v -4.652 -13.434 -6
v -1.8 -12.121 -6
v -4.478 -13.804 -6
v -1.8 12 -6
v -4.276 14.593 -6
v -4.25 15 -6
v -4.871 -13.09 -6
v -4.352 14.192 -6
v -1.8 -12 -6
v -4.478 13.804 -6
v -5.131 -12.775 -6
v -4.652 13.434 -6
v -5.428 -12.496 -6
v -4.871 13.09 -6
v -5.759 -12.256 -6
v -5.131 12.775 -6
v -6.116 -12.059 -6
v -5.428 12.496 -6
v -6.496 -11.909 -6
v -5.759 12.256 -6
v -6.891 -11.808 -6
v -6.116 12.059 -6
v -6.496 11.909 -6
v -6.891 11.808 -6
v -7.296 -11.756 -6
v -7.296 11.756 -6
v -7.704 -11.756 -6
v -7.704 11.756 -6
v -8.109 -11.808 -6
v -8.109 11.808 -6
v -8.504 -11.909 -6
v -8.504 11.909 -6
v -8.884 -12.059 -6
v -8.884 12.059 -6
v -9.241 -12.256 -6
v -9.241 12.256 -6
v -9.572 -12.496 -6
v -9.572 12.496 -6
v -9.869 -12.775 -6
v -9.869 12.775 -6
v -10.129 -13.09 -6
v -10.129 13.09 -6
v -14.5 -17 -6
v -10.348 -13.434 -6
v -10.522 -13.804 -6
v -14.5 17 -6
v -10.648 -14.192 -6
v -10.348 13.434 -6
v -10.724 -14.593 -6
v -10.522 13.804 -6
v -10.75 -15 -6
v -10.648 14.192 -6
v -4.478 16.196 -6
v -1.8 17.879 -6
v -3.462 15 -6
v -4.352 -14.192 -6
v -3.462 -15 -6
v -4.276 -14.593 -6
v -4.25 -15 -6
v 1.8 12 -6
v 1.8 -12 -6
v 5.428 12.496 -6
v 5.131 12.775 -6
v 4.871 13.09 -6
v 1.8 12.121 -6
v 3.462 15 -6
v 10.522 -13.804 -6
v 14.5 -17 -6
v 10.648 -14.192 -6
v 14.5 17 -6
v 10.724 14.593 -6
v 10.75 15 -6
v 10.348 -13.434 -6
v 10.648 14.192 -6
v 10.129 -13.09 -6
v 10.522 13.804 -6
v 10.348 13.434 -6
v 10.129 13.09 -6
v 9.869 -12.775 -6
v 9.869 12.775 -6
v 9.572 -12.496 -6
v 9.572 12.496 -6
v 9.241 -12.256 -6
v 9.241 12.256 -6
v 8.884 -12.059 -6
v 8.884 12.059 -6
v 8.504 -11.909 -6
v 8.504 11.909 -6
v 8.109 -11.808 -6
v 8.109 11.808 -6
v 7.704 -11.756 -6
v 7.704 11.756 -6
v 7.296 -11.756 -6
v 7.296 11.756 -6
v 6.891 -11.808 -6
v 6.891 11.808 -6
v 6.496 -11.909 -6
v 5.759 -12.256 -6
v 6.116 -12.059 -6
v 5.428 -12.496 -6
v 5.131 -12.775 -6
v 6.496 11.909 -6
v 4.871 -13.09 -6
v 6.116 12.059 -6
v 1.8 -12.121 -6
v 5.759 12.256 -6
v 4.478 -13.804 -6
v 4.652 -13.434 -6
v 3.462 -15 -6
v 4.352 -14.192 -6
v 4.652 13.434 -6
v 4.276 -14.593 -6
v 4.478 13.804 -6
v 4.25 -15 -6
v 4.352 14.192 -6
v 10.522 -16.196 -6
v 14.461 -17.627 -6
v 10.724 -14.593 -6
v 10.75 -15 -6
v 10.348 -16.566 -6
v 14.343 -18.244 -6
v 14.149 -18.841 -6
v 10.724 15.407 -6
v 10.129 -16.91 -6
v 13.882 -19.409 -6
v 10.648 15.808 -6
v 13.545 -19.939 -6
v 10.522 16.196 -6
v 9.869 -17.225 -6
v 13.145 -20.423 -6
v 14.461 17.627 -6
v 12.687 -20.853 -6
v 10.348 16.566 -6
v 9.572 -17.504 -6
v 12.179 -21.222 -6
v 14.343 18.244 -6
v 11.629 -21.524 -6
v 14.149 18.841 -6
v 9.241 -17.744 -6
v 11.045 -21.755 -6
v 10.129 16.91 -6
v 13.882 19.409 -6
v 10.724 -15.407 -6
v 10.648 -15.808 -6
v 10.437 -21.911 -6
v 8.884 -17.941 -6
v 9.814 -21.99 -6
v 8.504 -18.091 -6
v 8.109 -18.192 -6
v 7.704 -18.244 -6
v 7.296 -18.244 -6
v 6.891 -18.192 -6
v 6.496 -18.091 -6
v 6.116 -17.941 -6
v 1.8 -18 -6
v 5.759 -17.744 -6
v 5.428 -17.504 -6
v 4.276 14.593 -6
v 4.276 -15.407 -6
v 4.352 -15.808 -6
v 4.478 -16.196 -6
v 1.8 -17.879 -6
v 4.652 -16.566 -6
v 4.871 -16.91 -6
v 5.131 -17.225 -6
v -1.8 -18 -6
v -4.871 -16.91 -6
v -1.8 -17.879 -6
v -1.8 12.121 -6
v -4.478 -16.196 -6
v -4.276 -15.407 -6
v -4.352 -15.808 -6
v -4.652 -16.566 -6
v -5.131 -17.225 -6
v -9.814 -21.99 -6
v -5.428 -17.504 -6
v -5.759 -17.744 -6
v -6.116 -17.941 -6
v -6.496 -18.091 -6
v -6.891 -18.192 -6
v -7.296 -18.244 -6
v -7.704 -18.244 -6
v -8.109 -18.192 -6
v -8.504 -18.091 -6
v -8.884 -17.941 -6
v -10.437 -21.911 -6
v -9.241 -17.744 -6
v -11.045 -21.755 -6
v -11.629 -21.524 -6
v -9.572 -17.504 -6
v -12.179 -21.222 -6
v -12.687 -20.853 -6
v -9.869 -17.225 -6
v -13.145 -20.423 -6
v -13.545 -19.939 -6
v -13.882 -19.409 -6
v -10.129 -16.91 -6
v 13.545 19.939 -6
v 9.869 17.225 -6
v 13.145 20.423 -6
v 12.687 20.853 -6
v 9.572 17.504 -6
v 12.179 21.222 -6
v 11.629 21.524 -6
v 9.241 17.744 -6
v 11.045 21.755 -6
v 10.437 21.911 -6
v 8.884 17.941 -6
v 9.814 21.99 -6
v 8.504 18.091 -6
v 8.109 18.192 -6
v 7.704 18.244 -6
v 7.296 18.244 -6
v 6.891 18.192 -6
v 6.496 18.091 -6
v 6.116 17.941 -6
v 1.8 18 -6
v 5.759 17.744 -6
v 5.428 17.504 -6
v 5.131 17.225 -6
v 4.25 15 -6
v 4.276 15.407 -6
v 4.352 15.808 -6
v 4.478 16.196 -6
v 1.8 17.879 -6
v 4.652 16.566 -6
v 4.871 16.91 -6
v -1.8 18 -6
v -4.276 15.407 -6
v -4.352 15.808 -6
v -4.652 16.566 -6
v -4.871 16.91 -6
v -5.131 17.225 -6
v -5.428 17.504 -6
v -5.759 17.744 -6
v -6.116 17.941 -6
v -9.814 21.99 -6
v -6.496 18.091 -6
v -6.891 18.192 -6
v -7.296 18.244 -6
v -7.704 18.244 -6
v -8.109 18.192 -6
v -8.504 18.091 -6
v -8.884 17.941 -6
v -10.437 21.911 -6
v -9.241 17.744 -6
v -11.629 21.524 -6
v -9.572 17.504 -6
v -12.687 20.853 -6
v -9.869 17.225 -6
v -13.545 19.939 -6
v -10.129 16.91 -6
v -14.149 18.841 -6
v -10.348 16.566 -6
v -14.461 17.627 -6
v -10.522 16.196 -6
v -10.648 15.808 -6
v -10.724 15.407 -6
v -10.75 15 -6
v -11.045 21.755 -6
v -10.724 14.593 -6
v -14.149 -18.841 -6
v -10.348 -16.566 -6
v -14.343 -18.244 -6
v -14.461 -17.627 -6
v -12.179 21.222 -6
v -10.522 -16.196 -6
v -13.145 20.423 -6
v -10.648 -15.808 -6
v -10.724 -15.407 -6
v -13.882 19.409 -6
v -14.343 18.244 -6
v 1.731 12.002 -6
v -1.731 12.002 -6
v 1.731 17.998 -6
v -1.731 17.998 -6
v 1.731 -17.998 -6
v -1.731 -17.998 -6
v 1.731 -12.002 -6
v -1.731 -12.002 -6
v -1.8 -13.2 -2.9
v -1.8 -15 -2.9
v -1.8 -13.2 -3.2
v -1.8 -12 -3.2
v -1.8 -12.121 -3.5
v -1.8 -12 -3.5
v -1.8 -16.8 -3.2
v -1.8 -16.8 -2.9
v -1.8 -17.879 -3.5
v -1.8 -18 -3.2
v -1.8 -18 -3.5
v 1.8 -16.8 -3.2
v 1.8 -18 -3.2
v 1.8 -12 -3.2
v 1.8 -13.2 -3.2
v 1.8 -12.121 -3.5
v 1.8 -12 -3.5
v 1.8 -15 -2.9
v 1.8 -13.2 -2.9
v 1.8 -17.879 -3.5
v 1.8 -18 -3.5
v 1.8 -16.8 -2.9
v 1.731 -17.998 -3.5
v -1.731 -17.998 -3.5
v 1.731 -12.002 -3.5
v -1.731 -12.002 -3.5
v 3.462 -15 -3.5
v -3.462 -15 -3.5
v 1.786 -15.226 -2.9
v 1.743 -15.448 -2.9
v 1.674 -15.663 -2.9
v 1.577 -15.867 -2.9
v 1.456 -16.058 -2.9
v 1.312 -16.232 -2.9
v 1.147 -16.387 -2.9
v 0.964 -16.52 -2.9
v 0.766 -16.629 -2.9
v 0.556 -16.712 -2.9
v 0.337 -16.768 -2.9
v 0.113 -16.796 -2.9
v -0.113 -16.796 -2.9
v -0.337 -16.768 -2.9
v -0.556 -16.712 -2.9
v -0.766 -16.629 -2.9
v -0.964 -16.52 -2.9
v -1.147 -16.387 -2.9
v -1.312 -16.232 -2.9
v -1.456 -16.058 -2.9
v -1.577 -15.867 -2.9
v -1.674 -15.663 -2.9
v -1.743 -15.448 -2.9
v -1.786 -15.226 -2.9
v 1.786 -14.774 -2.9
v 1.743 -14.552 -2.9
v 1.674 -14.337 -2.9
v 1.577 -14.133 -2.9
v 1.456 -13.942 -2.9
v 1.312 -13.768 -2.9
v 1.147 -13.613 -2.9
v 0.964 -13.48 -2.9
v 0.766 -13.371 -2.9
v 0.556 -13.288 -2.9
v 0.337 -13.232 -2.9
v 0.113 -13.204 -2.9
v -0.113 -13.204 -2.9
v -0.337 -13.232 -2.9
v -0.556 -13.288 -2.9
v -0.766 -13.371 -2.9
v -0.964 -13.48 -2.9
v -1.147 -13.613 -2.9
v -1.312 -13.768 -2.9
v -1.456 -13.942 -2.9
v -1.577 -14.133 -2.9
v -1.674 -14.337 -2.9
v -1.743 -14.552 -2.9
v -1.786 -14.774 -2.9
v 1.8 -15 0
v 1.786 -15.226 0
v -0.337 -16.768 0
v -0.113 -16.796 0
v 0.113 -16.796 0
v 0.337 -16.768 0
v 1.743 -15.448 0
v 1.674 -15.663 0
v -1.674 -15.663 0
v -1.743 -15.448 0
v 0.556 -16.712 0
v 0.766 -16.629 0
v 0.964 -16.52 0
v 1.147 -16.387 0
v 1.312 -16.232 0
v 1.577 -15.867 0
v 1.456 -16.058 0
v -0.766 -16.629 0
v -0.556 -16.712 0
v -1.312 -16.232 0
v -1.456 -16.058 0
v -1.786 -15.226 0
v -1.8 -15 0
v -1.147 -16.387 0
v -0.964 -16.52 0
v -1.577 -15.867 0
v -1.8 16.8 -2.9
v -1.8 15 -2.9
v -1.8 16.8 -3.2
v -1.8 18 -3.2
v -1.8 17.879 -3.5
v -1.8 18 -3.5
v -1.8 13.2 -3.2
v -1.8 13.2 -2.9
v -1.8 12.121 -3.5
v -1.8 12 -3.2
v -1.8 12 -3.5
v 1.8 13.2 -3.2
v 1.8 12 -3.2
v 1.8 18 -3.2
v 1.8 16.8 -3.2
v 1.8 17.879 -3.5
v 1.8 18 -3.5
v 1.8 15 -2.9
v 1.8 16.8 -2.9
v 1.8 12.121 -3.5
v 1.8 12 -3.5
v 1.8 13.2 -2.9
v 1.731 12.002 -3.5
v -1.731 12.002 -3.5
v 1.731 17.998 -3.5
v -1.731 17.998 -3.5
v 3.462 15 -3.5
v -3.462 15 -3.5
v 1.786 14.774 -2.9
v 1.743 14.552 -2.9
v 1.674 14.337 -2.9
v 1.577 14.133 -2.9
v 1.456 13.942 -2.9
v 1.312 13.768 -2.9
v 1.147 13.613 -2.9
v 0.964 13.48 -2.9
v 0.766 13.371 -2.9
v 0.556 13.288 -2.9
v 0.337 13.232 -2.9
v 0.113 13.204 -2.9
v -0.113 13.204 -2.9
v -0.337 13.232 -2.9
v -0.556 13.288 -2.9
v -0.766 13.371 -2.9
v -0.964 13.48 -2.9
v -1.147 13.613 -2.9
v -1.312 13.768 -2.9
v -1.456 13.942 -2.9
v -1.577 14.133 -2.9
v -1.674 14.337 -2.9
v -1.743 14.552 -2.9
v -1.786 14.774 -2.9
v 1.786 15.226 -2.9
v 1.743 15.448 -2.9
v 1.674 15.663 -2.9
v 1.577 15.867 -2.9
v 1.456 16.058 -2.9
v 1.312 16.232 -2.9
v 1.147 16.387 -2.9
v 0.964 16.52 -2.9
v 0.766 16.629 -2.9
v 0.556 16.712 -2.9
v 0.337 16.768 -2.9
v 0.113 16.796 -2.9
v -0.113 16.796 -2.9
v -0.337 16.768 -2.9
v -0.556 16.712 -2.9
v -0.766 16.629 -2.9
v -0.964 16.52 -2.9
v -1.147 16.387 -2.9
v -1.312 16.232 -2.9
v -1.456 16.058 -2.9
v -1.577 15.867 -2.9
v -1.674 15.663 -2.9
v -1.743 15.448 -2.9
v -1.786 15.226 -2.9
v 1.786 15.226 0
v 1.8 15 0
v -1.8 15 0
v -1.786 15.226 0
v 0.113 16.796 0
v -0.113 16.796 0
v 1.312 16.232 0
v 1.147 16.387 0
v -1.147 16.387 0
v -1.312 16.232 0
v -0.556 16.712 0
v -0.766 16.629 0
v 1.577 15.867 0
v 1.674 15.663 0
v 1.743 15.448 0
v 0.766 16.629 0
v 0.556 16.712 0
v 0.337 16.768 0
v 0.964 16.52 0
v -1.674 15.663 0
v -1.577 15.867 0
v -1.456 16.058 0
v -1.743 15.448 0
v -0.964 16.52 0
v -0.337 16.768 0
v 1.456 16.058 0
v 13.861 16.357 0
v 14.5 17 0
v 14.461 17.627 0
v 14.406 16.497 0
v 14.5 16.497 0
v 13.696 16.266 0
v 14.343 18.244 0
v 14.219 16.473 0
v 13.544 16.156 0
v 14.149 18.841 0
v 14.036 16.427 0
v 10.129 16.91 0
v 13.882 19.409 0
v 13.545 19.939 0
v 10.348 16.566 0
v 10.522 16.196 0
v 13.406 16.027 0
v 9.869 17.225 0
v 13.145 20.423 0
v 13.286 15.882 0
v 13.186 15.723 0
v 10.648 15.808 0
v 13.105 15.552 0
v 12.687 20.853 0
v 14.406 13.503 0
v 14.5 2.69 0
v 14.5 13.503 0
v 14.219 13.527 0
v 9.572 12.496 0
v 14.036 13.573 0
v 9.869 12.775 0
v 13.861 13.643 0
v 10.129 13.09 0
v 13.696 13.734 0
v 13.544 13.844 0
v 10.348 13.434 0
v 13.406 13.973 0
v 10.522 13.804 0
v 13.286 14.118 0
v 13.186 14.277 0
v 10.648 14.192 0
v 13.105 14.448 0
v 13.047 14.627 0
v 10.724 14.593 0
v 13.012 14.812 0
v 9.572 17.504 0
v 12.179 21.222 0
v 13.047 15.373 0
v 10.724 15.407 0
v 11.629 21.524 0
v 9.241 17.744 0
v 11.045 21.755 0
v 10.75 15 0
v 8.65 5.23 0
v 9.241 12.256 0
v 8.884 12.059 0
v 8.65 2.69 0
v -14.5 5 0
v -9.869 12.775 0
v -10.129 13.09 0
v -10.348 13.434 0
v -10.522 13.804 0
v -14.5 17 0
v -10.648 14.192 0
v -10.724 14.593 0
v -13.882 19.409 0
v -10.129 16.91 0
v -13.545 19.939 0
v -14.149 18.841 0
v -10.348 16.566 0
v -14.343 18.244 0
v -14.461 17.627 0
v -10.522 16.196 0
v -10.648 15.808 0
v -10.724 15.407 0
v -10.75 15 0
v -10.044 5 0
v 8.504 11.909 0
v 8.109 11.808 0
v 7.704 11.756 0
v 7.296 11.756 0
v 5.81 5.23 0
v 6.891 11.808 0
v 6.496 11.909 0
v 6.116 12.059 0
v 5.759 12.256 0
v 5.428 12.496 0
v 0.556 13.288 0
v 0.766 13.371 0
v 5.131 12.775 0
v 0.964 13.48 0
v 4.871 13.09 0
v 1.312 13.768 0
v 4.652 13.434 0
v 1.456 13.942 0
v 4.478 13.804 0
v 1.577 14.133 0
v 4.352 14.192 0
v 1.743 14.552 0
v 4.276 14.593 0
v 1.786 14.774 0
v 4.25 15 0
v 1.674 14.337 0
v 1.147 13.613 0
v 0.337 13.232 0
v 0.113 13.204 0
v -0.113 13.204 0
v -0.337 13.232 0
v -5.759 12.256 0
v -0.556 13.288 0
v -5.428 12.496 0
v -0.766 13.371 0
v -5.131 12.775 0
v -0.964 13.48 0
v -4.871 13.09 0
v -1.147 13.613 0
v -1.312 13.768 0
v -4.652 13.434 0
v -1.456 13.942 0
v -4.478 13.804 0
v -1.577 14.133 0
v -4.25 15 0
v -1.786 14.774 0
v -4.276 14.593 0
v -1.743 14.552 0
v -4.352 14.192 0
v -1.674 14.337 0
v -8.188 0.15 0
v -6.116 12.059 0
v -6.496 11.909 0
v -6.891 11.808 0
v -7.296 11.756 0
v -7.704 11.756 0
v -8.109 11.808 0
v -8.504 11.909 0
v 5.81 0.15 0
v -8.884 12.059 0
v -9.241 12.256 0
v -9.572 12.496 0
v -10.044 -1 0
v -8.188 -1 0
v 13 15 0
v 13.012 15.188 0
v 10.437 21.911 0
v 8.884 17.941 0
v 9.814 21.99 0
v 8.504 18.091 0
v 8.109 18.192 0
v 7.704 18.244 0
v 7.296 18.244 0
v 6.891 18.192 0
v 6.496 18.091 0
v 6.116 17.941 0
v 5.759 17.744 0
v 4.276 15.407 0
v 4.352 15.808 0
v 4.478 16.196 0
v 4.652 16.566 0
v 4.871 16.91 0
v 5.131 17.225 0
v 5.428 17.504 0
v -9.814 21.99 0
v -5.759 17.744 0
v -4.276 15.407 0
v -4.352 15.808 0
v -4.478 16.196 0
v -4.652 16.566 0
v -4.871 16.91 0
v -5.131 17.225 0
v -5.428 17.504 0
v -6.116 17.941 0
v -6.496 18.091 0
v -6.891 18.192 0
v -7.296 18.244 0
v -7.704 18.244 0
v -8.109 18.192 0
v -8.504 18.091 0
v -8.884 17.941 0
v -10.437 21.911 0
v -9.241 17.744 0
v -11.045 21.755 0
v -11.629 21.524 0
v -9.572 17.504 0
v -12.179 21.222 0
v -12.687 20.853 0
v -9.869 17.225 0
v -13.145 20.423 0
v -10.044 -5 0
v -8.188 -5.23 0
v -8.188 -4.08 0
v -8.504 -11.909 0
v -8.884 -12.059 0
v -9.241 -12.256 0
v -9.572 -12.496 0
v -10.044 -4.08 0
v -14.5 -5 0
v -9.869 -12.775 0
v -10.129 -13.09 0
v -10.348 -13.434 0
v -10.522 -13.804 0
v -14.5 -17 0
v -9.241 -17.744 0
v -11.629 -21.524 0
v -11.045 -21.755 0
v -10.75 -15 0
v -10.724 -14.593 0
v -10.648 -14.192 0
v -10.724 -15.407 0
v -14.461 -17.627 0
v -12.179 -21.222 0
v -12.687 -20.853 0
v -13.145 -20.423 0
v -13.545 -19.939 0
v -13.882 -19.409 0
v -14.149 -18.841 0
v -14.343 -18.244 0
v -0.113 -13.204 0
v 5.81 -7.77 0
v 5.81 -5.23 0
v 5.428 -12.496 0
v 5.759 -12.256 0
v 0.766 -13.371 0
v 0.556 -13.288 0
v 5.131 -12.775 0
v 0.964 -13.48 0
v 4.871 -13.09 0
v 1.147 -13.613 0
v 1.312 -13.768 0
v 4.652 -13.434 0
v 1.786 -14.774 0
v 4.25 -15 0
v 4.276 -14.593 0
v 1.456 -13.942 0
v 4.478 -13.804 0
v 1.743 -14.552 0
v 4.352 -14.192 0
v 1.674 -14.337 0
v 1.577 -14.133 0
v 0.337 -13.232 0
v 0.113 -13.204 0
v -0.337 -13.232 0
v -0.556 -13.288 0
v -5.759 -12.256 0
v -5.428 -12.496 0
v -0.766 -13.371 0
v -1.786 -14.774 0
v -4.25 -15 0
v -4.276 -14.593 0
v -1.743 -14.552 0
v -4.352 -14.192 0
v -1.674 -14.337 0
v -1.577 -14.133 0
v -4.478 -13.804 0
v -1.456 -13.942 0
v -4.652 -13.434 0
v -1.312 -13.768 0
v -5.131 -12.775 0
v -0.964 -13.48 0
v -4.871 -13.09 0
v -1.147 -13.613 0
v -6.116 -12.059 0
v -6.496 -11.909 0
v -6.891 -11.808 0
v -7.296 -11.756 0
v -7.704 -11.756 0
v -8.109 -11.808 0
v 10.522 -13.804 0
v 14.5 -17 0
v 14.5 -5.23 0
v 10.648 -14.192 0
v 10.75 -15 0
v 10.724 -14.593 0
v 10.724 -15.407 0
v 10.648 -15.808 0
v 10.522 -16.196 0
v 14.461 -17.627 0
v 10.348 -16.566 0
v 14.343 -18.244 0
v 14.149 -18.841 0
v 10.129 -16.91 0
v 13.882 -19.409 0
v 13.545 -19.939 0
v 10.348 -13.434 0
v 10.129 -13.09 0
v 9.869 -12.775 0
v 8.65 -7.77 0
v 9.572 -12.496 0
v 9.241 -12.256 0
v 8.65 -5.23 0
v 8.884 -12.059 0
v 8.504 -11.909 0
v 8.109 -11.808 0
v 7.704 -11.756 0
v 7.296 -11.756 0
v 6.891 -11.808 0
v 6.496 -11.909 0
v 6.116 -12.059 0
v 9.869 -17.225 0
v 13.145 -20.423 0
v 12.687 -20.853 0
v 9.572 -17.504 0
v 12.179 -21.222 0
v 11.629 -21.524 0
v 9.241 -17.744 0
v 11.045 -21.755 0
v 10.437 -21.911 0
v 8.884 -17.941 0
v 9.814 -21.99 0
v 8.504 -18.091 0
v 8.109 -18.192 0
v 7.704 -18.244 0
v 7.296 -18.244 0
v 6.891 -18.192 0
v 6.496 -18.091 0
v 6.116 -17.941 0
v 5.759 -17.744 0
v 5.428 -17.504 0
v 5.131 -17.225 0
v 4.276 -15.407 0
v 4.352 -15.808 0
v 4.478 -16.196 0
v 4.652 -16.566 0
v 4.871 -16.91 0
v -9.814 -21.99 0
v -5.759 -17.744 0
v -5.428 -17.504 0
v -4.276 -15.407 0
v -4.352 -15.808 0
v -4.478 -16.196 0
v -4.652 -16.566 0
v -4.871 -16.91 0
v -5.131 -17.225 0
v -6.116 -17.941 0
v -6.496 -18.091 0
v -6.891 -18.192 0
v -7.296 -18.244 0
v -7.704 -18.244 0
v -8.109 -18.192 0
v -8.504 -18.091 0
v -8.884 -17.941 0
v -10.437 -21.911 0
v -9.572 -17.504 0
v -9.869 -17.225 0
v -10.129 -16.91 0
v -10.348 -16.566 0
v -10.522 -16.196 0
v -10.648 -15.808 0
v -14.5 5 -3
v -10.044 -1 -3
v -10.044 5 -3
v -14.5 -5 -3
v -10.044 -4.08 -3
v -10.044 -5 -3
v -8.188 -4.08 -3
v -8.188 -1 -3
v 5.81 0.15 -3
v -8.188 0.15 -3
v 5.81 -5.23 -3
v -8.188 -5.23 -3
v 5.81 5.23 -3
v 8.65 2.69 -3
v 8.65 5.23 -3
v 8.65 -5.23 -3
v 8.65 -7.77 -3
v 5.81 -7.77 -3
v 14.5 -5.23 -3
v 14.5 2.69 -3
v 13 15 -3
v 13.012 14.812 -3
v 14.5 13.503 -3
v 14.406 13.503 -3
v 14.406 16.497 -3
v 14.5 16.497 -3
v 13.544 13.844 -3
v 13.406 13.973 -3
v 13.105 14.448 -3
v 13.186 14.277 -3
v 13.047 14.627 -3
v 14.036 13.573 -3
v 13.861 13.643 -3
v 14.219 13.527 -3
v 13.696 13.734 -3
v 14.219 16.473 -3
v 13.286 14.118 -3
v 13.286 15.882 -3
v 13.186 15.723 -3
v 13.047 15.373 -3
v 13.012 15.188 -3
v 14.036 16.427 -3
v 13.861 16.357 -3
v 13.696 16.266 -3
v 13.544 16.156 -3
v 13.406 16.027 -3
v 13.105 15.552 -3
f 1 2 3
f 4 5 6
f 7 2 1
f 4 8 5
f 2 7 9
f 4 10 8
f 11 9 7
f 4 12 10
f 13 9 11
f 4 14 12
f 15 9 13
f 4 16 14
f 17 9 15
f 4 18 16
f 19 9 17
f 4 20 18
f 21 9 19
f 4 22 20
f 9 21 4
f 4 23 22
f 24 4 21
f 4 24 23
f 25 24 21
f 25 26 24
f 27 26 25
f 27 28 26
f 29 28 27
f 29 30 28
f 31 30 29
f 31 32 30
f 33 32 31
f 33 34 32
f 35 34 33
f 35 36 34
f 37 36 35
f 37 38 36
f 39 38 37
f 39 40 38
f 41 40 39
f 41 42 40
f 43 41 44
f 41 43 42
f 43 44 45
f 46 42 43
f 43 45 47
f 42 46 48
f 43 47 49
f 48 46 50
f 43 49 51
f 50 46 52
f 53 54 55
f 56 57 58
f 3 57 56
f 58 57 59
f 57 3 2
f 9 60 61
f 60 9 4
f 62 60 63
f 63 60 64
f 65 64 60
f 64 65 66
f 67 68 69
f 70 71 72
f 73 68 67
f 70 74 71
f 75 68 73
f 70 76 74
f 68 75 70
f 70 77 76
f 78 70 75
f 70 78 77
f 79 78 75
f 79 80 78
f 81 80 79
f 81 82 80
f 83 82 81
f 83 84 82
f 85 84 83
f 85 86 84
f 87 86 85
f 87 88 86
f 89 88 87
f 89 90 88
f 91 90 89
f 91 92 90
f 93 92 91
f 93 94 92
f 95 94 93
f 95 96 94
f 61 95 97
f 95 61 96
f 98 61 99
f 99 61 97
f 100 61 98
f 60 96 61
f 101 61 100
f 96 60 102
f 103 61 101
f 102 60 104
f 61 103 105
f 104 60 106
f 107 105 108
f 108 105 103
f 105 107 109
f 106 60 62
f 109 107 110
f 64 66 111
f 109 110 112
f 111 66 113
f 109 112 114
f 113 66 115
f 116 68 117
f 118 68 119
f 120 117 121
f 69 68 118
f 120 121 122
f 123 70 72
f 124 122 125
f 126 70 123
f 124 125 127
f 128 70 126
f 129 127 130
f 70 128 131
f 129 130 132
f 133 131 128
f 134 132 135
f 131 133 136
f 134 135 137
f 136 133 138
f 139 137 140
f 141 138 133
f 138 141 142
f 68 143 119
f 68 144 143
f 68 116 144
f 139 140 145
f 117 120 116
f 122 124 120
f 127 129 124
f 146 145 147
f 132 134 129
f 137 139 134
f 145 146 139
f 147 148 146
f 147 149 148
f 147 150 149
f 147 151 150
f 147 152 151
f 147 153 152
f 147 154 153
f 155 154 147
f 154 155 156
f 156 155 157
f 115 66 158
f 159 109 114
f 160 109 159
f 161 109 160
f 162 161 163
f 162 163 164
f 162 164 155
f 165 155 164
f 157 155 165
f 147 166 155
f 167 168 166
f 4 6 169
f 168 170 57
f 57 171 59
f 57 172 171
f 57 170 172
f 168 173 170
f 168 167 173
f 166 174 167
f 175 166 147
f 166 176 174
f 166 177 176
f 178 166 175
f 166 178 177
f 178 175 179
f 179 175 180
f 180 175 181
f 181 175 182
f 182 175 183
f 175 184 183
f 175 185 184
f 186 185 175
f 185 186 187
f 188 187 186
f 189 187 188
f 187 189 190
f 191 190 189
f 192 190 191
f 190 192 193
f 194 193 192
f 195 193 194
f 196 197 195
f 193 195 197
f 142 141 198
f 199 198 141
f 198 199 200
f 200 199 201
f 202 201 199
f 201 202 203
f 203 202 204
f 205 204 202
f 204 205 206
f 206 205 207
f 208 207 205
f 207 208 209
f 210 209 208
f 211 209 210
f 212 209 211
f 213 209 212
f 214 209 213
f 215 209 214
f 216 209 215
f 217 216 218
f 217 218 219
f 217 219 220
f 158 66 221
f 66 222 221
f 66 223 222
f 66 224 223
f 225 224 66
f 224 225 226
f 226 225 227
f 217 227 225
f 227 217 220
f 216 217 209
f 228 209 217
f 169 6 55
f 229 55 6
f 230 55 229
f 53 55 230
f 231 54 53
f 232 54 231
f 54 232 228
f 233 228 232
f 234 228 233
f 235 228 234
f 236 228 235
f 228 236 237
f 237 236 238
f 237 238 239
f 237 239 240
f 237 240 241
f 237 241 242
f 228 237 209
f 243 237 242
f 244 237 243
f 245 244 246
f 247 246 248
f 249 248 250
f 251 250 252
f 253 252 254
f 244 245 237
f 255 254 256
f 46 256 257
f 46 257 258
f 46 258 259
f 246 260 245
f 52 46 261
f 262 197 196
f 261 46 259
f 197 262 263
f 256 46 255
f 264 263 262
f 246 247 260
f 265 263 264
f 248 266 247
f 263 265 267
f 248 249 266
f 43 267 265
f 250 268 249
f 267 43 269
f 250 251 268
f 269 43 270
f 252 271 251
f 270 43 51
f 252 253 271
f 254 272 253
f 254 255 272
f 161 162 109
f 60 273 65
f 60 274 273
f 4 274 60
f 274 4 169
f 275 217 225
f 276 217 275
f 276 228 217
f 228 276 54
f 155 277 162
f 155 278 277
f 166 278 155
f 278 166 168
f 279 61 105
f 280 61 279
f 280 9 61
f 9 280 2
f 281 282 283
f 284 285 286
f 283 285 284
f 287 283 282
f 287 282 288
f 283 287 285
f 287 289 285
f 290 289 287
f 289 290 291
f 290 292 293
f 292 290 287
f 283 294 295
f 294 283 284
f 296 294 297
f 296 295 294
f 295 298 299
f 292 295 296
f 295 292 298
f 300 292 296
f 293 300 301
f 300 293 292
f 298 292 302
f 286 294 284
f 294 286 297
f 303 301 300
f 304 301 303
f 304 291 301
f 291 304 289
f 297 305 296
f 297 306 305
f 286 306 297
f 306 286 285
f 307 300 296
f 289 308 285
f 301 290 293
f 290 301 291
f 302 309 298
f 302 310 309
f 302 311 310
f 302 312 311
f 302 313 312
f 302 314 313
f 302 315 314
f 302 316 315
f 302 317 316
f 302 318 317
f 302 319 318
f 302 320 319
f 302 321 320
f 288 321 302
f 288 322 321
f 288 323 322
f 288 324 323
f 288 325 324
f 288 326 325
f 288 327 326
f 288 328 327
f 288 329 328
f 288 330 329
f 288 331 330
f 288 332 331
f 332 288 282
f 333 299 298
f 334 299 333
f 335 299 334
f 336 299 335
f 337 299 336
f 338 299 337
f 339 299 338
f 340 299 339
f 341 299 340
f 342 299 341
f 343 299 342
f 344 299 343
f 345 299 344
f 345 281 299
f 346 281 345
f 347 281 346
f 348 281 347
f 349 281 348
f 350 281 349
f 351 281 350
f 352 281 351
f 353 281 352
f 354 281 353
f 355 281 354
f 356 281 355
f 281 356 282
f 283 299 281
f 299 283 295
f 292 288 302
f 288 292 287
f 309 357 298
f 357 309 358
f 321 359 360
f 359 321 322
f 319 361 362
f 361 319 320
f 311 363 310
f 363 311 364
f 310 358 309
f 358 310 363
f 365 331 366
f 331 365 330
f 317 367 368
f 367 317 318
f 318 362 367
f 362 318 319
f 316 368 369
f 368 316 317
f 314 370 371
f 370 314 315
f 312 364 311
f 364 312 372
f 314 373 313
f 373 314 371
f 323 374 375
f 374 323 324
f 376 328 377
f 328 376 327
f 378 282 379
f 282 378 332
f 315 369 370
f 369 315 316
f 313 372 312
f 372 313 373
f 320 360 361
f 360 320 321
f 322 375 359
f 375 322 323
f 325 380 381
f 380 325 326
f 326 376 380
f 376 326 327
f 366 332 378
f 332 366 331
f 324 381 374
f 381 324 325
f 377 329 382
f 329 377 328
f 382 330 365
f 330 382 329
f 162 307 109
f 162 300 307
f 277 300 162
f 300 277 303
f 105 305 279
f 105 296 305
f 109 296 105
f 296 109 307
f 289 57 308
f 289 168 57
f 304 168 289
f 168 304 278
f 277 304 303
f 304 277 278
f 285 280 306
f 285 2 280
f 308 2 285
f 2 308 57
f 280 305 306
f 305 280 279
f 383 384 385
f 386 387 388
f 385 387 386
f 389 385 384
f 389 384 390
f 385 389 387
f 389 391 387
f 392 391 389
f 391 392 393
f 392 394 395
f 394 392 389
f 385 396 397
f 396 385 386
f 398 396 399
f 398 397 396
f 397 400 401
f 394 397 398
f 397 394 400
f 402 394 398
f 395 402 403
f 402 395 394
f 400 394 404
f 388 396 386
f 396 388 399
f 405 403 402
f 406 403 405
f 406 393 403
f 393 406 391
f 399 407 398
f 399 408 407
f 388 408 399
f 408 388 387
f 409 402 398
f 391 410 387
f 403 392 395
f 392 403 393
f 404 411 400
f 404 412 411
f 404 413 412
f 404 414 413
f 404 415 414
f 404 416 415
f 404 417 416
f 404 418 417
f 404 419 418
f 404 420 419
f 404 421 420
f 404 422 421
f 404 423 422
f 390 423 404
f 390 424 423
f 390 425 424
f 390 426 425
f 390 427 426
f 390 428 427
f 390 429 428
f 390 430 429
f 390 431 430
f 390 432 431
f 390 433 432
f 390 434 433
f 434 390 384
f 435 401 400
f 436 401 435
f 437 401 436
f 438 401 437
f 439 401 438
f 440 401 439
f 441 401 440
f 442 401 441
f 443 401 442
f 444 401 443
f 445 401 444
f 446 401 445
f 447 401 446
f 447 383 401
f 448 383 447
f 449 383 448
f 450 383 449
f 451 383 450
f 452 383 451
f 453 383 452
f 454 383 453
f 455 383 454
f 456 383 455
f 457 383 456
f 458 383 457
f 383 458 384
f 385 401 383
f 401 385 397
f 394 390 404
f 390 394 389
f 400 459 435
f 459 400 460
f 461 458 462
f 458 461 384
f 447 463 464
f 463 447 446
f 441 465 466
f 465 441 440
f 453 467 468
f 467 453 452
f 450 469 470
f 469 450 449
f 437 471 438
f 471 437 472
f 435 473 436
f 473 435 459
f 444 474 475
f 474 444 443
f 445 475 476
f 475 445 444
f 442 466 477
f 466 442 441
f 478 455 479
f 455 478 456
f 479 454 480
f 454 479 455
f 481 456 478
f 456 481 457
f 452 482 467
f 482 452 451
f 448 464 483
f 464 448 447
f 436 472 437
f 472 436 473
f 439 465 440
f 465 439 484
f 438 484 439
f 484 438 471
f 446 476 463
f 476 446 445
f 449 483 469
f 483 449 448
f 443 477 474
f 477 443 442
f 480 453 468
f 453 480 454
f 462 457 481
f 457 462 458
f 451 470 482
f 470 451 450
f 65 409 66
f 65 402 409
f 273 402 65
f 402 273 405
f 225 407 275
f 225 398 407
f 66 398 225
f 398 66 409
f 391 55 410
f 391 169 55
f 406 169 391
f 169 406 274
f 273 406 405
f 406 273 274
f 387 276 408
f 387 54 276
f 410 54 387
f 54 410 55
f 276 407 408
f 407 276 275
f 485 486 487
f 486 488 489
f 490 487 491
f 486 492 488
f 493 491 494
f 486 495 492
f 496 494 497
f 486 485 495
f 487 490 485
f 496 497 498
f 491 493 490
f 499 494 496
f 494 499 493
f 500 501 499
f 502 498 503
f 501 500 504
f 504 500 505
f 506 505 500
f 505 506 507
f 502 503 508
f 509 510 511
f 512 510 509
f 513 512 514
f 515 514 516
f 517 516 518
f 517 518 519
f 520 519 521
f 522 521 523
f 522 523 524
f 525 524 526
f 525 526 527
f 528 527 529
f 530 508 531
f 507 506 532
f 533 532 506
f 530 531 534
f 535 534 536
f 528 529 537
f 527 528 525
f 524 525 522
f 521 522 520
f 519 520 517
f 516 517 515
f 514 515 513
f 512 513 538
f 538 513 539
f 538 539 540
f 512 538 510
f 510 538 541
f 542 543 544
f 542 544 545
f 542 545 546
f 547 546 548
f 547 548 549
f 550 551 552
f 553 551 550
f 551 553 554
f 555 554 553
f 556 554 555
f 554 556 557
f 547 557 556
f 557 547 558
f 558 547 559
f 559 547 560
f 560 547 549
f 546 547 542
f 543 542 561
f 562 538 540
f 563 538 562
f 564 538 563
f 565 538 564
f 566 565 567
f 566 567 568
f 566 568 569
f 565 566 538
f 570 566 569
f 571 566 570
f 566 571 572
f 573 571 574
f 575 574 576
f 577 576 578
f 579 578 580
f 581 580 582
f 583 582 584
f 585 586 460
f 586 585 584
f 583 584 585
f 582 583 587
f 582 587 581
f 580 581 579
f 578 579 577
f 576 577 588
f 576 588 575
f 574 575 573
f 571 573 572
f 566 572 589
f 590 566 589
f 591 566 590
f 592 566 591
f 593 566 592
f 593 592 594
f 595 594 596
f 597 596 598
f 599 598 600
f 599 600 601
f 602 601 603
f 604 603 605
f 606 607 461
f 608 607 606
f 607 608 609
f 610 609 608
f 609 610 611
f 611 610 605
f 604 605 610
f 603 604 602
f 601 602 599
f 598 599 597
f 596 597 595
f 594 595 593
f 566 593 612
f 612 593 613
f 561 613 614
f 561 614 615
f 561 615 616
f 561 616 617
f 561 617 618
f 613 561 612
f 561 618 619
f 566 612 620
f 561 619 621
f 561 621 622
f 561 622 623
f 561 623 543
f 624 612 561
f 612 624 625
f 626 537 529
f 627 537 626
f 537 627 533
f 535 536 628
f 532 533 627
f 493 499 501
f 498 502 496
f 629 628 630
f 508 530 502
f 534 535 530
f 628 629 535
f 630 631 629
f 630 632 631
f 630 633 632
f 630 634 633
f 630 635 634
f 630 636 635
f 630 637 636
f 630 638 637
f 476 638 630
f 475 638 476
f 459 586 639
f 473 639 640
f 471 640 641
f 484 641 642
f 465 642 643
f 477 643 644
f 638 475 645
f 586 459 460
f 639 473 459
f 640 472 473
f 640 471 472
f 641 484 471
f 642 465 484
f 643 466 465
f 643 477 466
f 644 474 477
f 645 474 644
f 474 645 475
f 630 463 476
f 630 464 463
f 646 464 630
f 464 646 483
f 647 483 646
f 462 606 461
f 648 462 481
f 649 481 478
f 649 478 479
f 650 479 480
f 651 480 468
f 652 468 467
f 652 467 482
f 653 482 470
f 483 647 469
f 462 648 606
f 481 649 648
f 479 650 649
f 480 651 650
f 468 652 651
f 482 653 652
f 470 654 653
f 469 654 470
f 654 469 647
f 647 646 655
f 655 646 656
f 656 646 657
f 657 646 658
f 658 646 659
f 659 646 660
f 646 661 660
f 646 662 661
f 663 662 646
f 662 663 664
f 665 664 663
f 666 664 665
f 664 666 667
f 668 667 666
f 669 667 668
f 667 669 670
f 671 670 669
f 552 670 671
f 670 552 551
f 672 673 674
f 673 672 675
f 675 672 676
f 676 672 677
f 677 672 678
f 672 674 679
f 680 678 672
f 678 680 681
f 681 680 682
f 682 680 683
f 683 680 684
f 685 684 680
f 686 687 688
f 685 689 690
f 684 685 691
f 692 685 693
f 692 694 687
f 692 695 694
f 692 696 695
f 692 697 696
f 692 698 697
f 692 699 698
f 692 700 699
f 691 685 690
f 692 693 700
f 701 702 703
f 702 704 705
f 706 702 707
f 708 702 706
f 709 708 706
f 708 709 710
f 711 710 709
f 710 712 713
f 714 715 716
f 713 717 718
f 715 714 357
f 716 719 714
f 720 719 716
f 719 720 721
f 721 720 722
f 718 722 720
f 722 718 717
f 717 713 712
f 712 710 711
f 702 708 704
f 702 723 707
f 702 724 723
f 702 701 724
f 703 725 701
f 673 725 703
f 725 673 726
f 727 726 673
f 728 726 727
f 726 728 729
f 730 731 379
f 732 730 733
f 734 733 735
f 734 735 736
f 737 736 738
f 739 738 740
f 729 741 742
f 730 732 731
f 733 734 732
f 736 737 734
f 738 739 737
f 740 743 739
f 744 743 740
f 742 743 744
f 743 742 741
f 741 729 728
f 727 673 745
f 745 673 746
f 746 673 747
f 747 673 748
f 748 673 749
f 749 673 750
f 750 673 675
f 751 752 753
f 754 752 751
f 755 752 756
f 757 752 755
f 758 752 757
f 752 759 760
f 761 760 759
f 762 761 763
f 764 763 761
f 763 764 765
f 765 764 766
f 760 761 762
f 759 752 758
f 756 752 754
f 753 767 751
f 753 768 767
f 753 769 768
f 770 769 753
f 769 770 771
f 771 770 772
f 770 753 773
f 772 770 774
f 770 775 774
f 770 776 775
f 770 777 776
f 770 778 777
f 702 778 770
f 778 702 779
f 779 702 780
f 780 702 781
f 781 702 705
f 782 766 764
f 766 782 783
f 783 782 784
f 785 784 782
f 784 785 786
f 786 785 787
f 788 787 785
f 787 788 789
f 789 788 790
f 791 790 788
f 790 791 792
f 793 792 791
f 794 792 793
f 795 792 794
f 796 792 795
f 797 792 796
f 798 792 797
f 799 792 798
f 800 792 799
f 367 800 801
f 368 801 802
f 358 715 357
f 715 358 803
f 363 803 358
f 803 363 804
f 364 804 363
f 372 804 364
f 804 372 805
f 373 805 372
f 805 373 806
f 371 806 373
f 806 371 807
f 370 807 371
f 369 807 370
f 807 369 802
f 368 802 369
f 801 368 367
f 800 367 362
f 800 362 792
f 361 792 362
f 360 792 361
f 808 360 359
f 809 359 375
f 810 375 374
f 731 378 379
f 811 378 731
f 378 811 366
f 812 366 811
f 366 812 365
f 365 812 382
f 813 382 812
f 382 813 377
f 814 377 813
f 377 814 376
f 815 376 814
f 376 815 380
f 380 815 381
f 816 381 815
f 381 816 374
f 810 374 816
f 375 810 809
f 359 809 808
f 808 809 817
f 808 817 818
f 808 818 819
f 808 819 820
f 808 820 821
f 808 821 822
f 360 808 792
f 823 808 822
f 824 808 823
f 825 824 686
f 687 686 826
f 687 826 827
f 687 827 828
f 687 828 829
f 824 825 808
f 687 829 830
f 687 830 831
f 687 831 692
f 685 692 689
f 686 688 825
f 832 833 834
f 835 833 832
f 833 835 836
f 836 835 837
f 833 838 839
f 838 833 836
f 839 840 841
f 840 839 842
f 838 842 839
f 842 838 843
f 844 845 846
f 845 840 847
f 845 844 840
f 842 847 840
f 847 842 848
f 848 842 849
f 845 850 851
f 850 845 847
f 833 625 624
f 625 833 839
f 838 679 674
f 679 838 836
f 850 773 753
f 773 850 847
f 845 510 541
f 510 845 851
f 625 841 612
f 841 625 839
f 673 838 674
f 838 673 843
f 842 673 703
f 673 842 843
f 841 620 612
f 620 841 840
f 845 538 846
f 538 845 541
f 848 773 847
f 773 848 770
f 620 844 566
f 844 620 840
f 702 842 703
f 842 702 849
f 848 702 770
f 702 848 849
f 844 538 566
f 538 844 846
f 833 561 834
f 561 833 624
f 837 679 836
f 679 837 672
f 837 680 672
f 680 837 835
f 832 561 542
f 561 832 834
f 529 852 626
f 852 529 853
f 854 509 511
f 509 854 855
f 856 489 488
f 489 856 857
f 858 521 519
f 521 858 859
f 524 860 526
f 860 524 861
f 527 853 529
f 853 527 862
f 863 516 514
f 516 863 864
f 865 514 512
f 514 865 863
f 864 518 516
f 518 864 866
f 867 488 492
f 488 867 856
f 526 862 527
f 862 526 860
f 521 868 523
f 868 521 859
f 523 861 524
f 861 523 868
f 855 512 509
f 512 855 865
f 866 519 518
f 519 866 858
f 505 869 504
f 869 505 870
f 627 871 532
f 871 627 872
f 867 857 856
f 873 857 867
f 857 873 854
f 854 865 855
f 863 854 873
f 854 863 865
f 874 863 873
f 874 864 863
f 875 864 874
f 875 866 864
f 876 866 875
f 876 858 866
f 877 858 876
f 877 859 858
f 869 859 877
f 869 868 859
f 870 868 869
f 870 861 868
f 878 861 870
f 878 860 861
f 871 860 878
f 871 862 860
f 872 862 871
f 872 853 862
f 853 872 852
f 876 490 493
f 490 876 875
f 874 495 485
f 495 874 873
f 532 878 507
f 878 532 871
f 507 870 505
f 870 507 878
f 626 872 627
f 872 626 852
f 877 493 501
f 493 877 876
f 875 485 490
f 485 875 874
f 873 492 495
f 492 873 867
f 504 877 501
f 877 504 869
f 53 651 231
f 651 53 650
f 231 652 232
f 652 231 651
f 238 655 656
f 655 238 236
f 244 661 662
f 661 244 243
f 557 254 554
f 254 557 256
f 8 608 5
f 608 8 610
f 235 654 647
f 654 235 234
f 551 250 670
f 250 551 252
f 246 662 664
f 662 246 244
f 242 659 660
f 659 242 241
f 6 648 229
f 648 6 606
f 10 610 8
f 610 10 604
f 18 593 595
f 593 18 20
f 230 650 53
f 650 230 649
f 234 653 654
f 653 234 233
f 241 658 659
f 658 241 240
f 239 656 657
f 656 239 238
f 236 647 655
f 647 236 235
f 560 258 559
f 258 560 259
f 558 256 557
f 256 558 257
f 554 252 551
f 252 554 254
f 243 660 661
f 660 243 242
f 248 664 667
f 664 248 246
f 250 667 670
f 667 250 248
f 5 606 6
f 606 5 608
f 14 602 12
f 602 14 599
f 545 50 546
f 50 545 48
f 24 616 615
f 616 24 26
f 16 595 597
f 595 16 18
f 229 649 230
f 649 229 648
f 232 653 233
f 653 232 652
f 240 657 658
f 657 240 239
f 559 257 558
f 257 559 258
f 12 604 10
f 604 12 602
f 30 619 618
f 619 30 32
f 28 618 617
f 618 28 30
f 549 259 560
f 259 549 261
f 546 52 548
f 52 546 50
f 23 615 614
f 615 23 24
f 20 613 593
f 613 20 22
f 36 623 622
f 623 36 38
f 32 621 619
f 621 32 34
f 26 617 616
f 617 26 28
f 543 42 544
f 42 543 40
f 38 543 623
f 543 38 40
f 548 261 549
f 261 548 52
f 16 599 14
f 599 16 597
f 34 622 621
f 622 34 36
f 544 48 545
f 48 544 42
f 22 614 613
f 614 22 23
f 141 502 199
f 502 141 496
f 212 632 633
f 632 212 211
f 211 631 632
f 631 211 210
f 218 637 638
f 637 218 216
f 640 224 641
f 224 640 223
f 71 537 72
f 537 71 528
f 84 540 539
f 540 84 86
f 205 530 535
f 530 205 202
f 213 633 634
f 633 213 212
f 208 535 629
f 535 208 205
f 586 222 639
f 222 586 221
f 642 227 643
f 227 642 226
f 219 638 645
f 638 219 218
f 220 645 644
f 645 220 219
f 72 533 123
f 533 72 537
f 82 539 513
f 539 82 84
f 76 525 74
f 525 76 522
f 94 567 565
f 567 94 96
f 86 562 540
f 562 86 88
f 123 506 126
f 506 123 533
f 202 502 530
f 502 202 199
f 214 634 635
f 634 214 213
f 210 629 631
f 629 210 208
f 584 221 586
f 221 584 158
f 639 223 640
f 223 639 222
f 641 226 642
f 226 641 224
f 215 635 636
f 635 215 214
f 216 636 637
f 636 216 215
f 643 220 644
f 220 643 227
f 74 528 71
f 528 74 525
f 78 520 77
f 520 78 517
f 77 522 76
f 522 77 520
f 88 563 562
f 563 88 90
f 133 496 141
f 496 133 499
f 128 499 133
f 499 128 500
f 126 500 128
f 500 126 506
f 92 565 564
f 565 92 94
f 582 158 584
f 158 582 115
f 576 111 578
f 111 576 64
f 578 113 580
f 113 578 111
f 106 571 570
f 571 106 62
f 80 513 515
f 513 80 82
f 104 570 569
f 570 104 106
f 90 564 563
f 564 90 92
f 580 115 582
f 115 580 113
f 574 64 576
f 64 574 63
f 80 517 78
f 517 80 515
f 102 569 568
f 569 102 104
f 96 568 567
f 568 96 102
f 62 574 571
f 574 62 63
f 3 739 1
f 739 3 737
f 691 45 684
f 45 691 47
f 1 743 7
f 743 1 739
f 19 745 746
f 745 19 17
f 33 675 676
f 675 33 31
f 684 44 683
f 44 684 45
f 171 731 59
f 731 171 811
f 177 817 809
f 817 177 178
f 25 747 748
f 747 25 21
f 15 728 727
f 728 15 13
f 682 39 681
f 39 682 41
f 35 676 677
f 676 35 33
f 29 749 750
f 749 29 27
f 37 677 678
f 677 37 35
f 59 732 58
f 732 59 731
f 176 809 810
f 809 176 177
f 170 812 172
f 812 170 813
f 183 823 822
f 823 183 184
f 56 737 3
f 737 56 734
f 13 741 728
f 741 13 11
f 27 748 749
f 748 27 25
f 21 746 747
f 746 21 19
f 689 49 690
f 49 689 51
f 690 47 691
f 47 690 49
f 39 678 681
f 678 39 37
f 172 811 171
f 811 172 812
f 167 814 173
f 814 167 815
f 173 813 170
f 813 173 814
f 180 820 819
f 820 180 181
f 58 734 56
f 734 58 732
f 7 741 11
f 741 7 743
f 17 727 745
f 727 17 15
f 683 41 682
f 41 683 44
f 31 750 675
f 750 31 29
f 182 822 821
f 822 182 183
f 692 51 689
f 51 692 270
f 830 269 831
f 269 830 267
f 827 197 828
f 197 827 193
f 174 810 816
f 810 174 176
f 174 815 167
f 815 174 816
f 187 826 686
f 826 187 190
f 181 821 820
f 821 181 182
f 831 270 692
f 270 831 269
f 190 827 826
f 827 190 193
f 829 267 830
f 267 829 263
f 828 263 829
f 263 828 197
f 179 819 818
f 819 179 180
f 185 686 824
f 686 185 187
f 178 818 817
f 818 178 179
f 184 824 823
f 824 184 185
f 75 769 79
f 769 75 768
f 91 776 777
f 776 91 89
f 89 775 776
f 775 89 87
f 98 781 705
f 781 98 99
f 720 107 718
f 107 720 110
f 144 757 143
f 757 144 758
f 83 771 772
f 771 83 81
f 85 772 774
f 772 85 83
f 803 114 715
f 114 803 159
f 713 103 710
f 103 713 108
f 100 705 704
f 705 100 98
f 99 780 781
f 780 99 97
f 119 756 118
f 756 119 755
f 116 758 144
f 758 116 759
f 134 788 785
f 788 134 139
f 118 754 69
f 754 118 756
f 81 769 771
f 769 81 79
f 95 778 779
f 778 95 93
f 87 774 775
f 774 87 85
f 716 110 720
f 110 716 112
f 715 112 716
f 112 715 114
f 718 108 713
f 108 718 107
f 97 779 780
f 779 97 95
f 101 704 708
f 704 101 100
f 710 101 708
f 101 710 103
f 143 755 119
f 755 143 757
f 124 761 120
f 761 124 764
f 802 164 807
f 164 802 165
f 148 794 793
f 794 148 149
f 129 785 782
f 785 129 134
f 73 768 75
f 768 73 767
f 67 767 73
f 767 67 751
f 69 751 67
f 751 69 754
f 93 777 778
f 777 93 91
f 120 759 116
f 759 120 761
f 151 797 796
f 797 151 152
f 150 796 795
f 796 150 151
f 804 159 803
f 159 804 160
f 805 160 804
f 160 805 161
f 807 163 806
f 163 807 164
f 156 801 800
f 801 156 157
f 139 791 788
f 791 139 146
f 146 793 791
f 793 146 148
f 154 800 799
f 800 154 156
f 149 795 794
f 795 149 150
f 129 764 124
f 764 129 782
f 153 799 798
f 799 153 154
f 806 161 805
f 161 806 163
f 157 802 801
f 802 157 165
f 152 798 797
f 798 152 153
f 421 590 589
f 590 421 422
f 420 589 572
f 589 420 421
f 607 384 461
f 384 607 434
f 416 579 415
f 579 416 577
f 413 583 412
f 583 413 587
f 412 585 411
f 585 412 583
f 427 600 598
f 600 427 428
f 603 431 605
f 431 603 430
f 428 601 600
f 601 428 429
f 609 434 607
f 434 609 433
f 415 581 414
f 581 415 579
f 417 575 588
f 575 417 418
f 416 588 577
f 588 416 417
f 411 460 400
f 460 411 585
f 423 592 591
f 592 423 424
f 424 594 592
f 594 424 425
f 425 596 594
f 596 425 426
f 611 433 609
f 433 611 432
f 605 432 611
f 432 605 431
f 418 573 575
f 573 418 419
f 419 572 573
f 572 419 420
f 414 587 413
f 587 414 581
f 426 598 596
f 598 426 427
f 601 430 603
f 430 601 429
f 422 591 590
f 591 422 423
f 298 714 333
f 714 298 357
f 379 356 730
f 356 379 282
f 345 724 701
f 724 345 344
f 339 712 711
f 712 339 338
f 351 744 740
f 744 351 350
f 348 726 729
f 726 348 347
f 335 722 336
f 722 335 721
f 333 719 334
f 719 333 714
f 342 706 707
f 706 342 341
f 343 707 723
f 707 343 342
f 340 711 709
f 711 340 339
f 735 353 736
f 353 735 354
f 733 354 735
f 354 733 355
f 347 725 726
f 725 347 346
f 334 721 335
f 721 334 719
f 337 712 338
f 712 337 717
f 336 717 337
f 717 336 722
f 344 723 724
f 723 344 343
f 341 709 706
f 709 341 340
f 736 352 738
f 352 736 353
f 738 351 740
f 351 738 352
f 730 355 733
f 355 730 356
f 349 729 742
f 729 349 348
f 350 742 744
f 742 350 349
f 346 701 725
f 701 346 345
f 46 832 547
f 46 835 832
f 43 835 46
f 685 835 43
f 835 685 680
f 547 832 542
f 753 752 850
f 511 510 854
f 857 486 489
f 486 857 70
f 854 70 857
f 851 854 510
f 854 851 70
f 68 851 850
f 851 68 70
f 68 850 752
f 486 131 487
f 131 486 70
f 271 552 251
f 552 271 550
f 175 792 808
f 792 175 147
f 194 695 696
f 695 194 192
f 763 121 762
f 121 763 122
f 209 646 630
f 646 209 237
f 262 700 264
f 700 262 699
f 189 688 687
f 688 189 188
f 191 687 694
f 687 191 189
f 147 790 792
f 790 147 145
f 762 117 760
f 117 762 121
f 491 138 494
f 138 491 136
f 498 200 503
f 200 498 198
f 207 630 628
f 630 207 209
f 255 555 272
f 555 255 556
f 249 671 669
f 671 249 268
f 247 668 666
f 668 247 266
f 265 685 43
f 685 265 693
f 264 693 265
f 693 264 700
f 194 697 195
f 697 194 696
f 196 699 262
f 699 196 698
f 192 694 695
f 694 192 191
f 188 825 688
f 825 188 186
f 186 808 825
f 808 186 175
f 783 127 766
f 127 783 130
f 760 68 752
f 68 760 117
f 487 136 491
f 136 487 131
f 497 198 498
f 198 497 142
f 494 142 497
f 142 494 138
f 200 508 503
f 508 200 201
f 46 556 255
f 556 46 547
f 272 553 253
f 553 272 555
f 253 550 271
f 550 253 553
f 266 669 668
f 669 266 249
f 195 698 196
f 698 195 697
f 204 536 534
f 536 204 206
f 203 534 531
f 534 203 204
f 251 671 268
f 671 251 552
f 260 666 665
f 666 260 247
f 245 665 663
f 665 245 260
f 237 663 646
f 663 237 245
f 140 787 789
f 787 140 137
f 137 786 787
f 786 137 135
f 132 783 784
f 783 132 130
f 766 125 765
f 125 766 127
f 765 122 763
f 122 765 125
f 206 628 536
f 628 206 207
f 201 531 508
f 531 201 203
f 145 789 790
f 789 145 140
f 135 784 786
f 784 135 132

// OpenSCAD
$fn = 50;


difference() {
	union() {
		translate(v = [0, 0, -6]) {
			hull() {
				translate(v = [-9.5000000000, 17.0000000000, 0]) {
					cylinder(h = 6, r = 5);
				}
				translate(v = [9.5000000000, 17.0000000000, 0]) {
					cylinder(h = 6, r = 5);
				}
				translate(v = [-9.5000000000, -17.0000000000, 0]) {
					cylinder(h = 6, r = 5);
				}
				translate(v = [9.5000000000, -17.0000000000, 0]) {
					cylinder(h = 6, r = 5);
				}
			}
		}
	}
	union() {
		translate(v = [0, -15, -6]) {
			rotate(a = [0, 0, 0]) {
				difference() {
					union() {
						translate(v = [-1.8000000000, -3.0000000000, -0.3000000000]) {
							cube(size = [3.6000000000, 6.0000000000, 0.3000000000]);
						}
						translate(v = [-1.8000000000, -1.8000000000, -0.6000000000]) {
							cube(size = [3.6000000000, 3.6000000000, 0.3000000000]);
						}
						translate(v = [-1.8000000000, -3.0000000000, 2.5000000000]) {
							cube(size = [3.6000000000, 6.0000000000, 0.3000000000]);
						}
						translate(v = [-1.8000000000, -1.8000000000, 2.8000000000]) {
							cube(size = [3.6000000000, 3.6000000000, 0.3000000000]);
						}
						translate(v = [0, 0, -50.0000000000]) {
							cylinder(h = 100, r = 1.8000000000);
						}
						linear_extrude(height = 2.5000000000) {
							polygon(points = [[3.4620000000, 0.0000000000], [1.7310000000, 2.9981799479], [-1.7310000000, 2.9981799479], [-3.4620000000, 0.0000000000], [-1.7310000000, -2.9981799479], [1.7310000000, -2.9981799479]]);
						}
						translate(v = [-1.8000000000, -3.0000000000, -0.3000000000]) {
							cube(size = [3.6000000000, 6.0000000000, 0.3000000000]);
						}
						translate(v = [-1.8000000000, -1.8000000000, -0.6000000000]) {
							cube(size = [3.6000000000, 3.6000000000, 0.3000000000]);
						}
						translate(v = [-1.8000000000, -3.0000000000, 2.5000000000]) {
							cube(size = [3.6000000000, 6.0000000000, 0.3000000000]);
						}
						translate(v = [-1.8000000000, -1.8000000000, 2.8000000000]) {
							cube(size = [3.6000000000, 3.6000000000, 0.3000000000]);
						}
						translate(v = [0, 0, -50.0000000000]) {
							cylinder(h = 100, r = 1.8000000000);
						}
						translate(v = [-1.8000000000, -3.0000000000, -0.3000000000]) {
							cube(size = [3.6000000000, 6.0000000000, 0.3000000000]);
						}
						translate(v = [-1.8000000000, -1.8000000000, -0.6000000000]) {
							cube(size = [3.6000000000, 3.6000000000, 0.3000000000]);
						}
						translate(v = [-1.8000000000, -3.0000000000, 2.5000000000]) {
							cube(size = [3.6000000000, 6.0000000000, 0.3000000000]);
						}
						translate(v = [-1.8000000000, -1.8000000000, 2.8000000000]) {
							cube(size = [3.6000000000, 3.6000000000, 0.3000000000]);
						}
						translate(v = [0, 0, -50.0000000000]) {
							cylinder(h = 100, r = 1.8000000000);
						}
					}
					union();
				}
			}
		}
		translate(v = [0, 15, -6]) {
			rotate(a = [0, 0, 0]) {
				difference() {
					union() {
						translate(v = [-1.8000000000, -3.0000000000, -0.3000000000]) {
							cube(size = [3.6000000000, 6.0000000000, 0.3000000000]);
						}
						translate(v = [-1.8000000000, -1.8000000000, -0.6000000000]) {
							cube(size = [3.6000000000, 3.6000000000, 0.3000000000]);
						}
						translate(v = [-1.8000000000, -3.0000000000, 2.5000000000]) {
							cube(size = [3.6000000000, 6.0000000000, 0.3000000000]);
						}
						translate(v = [-1.8000000000, -1.8000000000, 2.8000000000]) {
							cube(size = [3.6000000000, 3.6000000000, 0.3000000000]);
						}
						translate(v = [0, 0, -50.0000000000]) {
							cylinder(h = 100, r = 1.8000000000);
						}
						linear_extrude(height = 2.5000000000) {
							polygon(points = [[3.4620000000, 0.0000000000], [1.7310000000, 2.9981799479], [-1.7310000000, 2.9981799479], [-3.4620000000, 0.0000000000], [-1.7310000000, -2.9981799479], [1.7310000000, -2.9981799479]]);
						}
						translate(v = [-1.8000000000, -3.0000000000, -0.3000000000]) {
							cube(size = [3.6000000000, 6.0000000000, 0.3000000000]);
						}
						translate(v = [-1.8000000000, -1.8000000000, -0.6000000000]) {
							cube(size = [3.6000000000, 3.6000000000, 0.3000000000]);
						}
						translate(v = [-1.8000000000, -3.0000000000, 2.5000000000]) {
							cube(size = [3.6000000000, 6.0000000000, 0.3000000000]);
						}
						translate(v = [-1.8000000000, -1.8000000000, 2.8000000000]) {
							cube(size = [3.6000000000, 3.6000000000, 0.3000000000]);
						}
						translate(v = [0, 0, -50.0000000000]) {
							cylinder(h = 100, r = 1.8000000000);
						}
						translate(v = [-1.8000000000, -3.0000000000, -0.3000000000]) {
							cube(size = [3.6000000000, 6.0000000000, 0.3000000000]);
						}
						translate(v = [-1.8000000000, -1.8000000000, -0.6000000000]) {
							cube(size = [3.6000000000, 3.6000000000, 0.3000000000]);
						}
						translate(v = [-1.8000000000, -3.0000000000, 2.5000000000]) {
							cube(size = [3.6000000000, 6.0000000000, 0.3000000000]);
						}
						translate(v = [-1.8000000000, -1.8000000000, 2.8000000000]) {
							cube(size = [3.6000000000, 3.6000000000, 0.3000000000]);
						}
						translate(v = [0, 0, -50.0000000000]) {
							cylinder(h = 100, r = 1.8000000000);
						}
					}
					union();
				}
			}
		}
		translate(v = [15.0000000000, 0, -3]) {
			rotate(a = [0, 0, 180]) {
				difference() {
					union() {
						#translate(v = [23.0670000000, 1.0000000000, 0]) {
							cube(size = [5, 3.0800000000, 3]);
						}
						#translate(v = [0.2040000000, -2.6900000000, 0]) {
							cube(size = [6.3000000000, 7.9200000000, 3]);
						}
						#translate(v = [8.8880000000, -0.1500000000, 0]) {
							cube(size = [14.3000000000, 5.3800000000, 3]);
						}
						#translate(v = [6.3500000000, -5.2300000000, 0]) {
							cube(size = [2.8400000000, 13.0000000000, 3]);
						}
						#translate(v = [25.0440000000, -5.0000000000, 0]) {
							cube(size = [7, 10, 3]);
						}
						#translate(v = [0.5000000000, -15, 0.0000000000]) {
							cylinder(h = 3, r = 1.5000000000);
						}
					}
					union();
				}
			}
		}
		translate(v = [-7.5000000000, 15.0000000000, -50.0000000000]) {
			cylinder(h = 100, r = 3.2500000000);
		}
		translate(v = [7.5000000000, 15.0000000000, -50.0000000000]) {
			cylinder(h = 100, r = 3.2500000000);
		}
		translate(v = [-7.5000000000, -15.0000000000, -50.0000000000]) {
			cylinder(h = 100, r = 3.2500000000);
		}
		translate(v = [7.5000000000, -15.0000000000, -50.0000000000]) {
			cylinder(h = 100, r = 3.2500000000);
		}
		translate(v = [-7.5000000000, 15.0000000000, -50.0000000000]) {
			cylinder(h = 100, r = 1.8000000000);
		}
		translate(v = [0.0000000000, 15.0000000000, -50.0000000000]) {
			cylinder(h = 100, r = 1.8000000000);
		}
		translate(v = [7.5000000000, 15.0000000000, -50.0000000000]) {
			cylinder(h = 100, r = 1.8000000000);
		}
		translate(v = [-7.5000000000, -15.0000000000, -50.0000000000]) {
			cylinder(h = 100, r = 1.8000000000);
		}
		translate(v = [0.0000000000, -15.0000000000, -50.0000000000]) {
			cylinder(h = 100, r = 1.8000000000);
		}
		translate(v = [7.5000000000, -15.0000000000, -50.0000000000]) {
			cylinder(h = 100, r = 1.8000000000);
		}
		translate(v = [-7.5000000000, 15.0000000000, -50.0000000000]) {
			cylinder(h = 100, r = 1.8000000000);
		}
		translate(v = [0.0000000000, 15.0000000000, -50.0000000000]) {
			cylinder(h = 100, r = 1.8000000000);
		}
		translate(v = [7.5000000000, 15.0000000000, -50.0000000000]) {
			cylinder(h = 100, r = 1.8000000000);
		}
		translate(v = [-7.5000000000, -15.0000000000, -50.0000000000]) {
			cylinder(h = 100, r = 1.8000000000);
		}
		translate(v = [0.0000000000, -15.0000000000, -50.0000000000]) {
			cylinder(h = 100, r = 1.8000000000);
		}
		translate(v = [7.5000000000, -15.0000000000, -50.0000000000]) {
			cylinder(h = 100, r = 1.8000000000);
		}
		translate(v = [-7.5000000000, 15.0000000000, -50.0000000000]) {
			cylinder(h = 100, r = 1.8000000000);
		}
		translate(v = [0.0000000000, 15.0000000000, -50.0000000000]) {
			cylinder(h = 100, r = 1.8000000000);
		}
		translate(v = [7.5000000000, 15.0000000000, -50.0000000000]) {
			cylinder(h = 100, r = 1.8000000000);
		}
		translate(v = [-7.5000000000, -15.0000000000, -50.0000000000]) {
			cylinder(h = 100, r = 1.8000000000);
		}
		translate(v = [0.0000000000, -15.0000000000, -50.0000000000]) {
			cylinder(h = 100, r = 1.8000000000);
		}
		translate(v = [7.5000000000, -15.0000000000, -50.0000000000]) {
			cylinder(h = 100, r = 1.8000000000);
		}
	}
}
